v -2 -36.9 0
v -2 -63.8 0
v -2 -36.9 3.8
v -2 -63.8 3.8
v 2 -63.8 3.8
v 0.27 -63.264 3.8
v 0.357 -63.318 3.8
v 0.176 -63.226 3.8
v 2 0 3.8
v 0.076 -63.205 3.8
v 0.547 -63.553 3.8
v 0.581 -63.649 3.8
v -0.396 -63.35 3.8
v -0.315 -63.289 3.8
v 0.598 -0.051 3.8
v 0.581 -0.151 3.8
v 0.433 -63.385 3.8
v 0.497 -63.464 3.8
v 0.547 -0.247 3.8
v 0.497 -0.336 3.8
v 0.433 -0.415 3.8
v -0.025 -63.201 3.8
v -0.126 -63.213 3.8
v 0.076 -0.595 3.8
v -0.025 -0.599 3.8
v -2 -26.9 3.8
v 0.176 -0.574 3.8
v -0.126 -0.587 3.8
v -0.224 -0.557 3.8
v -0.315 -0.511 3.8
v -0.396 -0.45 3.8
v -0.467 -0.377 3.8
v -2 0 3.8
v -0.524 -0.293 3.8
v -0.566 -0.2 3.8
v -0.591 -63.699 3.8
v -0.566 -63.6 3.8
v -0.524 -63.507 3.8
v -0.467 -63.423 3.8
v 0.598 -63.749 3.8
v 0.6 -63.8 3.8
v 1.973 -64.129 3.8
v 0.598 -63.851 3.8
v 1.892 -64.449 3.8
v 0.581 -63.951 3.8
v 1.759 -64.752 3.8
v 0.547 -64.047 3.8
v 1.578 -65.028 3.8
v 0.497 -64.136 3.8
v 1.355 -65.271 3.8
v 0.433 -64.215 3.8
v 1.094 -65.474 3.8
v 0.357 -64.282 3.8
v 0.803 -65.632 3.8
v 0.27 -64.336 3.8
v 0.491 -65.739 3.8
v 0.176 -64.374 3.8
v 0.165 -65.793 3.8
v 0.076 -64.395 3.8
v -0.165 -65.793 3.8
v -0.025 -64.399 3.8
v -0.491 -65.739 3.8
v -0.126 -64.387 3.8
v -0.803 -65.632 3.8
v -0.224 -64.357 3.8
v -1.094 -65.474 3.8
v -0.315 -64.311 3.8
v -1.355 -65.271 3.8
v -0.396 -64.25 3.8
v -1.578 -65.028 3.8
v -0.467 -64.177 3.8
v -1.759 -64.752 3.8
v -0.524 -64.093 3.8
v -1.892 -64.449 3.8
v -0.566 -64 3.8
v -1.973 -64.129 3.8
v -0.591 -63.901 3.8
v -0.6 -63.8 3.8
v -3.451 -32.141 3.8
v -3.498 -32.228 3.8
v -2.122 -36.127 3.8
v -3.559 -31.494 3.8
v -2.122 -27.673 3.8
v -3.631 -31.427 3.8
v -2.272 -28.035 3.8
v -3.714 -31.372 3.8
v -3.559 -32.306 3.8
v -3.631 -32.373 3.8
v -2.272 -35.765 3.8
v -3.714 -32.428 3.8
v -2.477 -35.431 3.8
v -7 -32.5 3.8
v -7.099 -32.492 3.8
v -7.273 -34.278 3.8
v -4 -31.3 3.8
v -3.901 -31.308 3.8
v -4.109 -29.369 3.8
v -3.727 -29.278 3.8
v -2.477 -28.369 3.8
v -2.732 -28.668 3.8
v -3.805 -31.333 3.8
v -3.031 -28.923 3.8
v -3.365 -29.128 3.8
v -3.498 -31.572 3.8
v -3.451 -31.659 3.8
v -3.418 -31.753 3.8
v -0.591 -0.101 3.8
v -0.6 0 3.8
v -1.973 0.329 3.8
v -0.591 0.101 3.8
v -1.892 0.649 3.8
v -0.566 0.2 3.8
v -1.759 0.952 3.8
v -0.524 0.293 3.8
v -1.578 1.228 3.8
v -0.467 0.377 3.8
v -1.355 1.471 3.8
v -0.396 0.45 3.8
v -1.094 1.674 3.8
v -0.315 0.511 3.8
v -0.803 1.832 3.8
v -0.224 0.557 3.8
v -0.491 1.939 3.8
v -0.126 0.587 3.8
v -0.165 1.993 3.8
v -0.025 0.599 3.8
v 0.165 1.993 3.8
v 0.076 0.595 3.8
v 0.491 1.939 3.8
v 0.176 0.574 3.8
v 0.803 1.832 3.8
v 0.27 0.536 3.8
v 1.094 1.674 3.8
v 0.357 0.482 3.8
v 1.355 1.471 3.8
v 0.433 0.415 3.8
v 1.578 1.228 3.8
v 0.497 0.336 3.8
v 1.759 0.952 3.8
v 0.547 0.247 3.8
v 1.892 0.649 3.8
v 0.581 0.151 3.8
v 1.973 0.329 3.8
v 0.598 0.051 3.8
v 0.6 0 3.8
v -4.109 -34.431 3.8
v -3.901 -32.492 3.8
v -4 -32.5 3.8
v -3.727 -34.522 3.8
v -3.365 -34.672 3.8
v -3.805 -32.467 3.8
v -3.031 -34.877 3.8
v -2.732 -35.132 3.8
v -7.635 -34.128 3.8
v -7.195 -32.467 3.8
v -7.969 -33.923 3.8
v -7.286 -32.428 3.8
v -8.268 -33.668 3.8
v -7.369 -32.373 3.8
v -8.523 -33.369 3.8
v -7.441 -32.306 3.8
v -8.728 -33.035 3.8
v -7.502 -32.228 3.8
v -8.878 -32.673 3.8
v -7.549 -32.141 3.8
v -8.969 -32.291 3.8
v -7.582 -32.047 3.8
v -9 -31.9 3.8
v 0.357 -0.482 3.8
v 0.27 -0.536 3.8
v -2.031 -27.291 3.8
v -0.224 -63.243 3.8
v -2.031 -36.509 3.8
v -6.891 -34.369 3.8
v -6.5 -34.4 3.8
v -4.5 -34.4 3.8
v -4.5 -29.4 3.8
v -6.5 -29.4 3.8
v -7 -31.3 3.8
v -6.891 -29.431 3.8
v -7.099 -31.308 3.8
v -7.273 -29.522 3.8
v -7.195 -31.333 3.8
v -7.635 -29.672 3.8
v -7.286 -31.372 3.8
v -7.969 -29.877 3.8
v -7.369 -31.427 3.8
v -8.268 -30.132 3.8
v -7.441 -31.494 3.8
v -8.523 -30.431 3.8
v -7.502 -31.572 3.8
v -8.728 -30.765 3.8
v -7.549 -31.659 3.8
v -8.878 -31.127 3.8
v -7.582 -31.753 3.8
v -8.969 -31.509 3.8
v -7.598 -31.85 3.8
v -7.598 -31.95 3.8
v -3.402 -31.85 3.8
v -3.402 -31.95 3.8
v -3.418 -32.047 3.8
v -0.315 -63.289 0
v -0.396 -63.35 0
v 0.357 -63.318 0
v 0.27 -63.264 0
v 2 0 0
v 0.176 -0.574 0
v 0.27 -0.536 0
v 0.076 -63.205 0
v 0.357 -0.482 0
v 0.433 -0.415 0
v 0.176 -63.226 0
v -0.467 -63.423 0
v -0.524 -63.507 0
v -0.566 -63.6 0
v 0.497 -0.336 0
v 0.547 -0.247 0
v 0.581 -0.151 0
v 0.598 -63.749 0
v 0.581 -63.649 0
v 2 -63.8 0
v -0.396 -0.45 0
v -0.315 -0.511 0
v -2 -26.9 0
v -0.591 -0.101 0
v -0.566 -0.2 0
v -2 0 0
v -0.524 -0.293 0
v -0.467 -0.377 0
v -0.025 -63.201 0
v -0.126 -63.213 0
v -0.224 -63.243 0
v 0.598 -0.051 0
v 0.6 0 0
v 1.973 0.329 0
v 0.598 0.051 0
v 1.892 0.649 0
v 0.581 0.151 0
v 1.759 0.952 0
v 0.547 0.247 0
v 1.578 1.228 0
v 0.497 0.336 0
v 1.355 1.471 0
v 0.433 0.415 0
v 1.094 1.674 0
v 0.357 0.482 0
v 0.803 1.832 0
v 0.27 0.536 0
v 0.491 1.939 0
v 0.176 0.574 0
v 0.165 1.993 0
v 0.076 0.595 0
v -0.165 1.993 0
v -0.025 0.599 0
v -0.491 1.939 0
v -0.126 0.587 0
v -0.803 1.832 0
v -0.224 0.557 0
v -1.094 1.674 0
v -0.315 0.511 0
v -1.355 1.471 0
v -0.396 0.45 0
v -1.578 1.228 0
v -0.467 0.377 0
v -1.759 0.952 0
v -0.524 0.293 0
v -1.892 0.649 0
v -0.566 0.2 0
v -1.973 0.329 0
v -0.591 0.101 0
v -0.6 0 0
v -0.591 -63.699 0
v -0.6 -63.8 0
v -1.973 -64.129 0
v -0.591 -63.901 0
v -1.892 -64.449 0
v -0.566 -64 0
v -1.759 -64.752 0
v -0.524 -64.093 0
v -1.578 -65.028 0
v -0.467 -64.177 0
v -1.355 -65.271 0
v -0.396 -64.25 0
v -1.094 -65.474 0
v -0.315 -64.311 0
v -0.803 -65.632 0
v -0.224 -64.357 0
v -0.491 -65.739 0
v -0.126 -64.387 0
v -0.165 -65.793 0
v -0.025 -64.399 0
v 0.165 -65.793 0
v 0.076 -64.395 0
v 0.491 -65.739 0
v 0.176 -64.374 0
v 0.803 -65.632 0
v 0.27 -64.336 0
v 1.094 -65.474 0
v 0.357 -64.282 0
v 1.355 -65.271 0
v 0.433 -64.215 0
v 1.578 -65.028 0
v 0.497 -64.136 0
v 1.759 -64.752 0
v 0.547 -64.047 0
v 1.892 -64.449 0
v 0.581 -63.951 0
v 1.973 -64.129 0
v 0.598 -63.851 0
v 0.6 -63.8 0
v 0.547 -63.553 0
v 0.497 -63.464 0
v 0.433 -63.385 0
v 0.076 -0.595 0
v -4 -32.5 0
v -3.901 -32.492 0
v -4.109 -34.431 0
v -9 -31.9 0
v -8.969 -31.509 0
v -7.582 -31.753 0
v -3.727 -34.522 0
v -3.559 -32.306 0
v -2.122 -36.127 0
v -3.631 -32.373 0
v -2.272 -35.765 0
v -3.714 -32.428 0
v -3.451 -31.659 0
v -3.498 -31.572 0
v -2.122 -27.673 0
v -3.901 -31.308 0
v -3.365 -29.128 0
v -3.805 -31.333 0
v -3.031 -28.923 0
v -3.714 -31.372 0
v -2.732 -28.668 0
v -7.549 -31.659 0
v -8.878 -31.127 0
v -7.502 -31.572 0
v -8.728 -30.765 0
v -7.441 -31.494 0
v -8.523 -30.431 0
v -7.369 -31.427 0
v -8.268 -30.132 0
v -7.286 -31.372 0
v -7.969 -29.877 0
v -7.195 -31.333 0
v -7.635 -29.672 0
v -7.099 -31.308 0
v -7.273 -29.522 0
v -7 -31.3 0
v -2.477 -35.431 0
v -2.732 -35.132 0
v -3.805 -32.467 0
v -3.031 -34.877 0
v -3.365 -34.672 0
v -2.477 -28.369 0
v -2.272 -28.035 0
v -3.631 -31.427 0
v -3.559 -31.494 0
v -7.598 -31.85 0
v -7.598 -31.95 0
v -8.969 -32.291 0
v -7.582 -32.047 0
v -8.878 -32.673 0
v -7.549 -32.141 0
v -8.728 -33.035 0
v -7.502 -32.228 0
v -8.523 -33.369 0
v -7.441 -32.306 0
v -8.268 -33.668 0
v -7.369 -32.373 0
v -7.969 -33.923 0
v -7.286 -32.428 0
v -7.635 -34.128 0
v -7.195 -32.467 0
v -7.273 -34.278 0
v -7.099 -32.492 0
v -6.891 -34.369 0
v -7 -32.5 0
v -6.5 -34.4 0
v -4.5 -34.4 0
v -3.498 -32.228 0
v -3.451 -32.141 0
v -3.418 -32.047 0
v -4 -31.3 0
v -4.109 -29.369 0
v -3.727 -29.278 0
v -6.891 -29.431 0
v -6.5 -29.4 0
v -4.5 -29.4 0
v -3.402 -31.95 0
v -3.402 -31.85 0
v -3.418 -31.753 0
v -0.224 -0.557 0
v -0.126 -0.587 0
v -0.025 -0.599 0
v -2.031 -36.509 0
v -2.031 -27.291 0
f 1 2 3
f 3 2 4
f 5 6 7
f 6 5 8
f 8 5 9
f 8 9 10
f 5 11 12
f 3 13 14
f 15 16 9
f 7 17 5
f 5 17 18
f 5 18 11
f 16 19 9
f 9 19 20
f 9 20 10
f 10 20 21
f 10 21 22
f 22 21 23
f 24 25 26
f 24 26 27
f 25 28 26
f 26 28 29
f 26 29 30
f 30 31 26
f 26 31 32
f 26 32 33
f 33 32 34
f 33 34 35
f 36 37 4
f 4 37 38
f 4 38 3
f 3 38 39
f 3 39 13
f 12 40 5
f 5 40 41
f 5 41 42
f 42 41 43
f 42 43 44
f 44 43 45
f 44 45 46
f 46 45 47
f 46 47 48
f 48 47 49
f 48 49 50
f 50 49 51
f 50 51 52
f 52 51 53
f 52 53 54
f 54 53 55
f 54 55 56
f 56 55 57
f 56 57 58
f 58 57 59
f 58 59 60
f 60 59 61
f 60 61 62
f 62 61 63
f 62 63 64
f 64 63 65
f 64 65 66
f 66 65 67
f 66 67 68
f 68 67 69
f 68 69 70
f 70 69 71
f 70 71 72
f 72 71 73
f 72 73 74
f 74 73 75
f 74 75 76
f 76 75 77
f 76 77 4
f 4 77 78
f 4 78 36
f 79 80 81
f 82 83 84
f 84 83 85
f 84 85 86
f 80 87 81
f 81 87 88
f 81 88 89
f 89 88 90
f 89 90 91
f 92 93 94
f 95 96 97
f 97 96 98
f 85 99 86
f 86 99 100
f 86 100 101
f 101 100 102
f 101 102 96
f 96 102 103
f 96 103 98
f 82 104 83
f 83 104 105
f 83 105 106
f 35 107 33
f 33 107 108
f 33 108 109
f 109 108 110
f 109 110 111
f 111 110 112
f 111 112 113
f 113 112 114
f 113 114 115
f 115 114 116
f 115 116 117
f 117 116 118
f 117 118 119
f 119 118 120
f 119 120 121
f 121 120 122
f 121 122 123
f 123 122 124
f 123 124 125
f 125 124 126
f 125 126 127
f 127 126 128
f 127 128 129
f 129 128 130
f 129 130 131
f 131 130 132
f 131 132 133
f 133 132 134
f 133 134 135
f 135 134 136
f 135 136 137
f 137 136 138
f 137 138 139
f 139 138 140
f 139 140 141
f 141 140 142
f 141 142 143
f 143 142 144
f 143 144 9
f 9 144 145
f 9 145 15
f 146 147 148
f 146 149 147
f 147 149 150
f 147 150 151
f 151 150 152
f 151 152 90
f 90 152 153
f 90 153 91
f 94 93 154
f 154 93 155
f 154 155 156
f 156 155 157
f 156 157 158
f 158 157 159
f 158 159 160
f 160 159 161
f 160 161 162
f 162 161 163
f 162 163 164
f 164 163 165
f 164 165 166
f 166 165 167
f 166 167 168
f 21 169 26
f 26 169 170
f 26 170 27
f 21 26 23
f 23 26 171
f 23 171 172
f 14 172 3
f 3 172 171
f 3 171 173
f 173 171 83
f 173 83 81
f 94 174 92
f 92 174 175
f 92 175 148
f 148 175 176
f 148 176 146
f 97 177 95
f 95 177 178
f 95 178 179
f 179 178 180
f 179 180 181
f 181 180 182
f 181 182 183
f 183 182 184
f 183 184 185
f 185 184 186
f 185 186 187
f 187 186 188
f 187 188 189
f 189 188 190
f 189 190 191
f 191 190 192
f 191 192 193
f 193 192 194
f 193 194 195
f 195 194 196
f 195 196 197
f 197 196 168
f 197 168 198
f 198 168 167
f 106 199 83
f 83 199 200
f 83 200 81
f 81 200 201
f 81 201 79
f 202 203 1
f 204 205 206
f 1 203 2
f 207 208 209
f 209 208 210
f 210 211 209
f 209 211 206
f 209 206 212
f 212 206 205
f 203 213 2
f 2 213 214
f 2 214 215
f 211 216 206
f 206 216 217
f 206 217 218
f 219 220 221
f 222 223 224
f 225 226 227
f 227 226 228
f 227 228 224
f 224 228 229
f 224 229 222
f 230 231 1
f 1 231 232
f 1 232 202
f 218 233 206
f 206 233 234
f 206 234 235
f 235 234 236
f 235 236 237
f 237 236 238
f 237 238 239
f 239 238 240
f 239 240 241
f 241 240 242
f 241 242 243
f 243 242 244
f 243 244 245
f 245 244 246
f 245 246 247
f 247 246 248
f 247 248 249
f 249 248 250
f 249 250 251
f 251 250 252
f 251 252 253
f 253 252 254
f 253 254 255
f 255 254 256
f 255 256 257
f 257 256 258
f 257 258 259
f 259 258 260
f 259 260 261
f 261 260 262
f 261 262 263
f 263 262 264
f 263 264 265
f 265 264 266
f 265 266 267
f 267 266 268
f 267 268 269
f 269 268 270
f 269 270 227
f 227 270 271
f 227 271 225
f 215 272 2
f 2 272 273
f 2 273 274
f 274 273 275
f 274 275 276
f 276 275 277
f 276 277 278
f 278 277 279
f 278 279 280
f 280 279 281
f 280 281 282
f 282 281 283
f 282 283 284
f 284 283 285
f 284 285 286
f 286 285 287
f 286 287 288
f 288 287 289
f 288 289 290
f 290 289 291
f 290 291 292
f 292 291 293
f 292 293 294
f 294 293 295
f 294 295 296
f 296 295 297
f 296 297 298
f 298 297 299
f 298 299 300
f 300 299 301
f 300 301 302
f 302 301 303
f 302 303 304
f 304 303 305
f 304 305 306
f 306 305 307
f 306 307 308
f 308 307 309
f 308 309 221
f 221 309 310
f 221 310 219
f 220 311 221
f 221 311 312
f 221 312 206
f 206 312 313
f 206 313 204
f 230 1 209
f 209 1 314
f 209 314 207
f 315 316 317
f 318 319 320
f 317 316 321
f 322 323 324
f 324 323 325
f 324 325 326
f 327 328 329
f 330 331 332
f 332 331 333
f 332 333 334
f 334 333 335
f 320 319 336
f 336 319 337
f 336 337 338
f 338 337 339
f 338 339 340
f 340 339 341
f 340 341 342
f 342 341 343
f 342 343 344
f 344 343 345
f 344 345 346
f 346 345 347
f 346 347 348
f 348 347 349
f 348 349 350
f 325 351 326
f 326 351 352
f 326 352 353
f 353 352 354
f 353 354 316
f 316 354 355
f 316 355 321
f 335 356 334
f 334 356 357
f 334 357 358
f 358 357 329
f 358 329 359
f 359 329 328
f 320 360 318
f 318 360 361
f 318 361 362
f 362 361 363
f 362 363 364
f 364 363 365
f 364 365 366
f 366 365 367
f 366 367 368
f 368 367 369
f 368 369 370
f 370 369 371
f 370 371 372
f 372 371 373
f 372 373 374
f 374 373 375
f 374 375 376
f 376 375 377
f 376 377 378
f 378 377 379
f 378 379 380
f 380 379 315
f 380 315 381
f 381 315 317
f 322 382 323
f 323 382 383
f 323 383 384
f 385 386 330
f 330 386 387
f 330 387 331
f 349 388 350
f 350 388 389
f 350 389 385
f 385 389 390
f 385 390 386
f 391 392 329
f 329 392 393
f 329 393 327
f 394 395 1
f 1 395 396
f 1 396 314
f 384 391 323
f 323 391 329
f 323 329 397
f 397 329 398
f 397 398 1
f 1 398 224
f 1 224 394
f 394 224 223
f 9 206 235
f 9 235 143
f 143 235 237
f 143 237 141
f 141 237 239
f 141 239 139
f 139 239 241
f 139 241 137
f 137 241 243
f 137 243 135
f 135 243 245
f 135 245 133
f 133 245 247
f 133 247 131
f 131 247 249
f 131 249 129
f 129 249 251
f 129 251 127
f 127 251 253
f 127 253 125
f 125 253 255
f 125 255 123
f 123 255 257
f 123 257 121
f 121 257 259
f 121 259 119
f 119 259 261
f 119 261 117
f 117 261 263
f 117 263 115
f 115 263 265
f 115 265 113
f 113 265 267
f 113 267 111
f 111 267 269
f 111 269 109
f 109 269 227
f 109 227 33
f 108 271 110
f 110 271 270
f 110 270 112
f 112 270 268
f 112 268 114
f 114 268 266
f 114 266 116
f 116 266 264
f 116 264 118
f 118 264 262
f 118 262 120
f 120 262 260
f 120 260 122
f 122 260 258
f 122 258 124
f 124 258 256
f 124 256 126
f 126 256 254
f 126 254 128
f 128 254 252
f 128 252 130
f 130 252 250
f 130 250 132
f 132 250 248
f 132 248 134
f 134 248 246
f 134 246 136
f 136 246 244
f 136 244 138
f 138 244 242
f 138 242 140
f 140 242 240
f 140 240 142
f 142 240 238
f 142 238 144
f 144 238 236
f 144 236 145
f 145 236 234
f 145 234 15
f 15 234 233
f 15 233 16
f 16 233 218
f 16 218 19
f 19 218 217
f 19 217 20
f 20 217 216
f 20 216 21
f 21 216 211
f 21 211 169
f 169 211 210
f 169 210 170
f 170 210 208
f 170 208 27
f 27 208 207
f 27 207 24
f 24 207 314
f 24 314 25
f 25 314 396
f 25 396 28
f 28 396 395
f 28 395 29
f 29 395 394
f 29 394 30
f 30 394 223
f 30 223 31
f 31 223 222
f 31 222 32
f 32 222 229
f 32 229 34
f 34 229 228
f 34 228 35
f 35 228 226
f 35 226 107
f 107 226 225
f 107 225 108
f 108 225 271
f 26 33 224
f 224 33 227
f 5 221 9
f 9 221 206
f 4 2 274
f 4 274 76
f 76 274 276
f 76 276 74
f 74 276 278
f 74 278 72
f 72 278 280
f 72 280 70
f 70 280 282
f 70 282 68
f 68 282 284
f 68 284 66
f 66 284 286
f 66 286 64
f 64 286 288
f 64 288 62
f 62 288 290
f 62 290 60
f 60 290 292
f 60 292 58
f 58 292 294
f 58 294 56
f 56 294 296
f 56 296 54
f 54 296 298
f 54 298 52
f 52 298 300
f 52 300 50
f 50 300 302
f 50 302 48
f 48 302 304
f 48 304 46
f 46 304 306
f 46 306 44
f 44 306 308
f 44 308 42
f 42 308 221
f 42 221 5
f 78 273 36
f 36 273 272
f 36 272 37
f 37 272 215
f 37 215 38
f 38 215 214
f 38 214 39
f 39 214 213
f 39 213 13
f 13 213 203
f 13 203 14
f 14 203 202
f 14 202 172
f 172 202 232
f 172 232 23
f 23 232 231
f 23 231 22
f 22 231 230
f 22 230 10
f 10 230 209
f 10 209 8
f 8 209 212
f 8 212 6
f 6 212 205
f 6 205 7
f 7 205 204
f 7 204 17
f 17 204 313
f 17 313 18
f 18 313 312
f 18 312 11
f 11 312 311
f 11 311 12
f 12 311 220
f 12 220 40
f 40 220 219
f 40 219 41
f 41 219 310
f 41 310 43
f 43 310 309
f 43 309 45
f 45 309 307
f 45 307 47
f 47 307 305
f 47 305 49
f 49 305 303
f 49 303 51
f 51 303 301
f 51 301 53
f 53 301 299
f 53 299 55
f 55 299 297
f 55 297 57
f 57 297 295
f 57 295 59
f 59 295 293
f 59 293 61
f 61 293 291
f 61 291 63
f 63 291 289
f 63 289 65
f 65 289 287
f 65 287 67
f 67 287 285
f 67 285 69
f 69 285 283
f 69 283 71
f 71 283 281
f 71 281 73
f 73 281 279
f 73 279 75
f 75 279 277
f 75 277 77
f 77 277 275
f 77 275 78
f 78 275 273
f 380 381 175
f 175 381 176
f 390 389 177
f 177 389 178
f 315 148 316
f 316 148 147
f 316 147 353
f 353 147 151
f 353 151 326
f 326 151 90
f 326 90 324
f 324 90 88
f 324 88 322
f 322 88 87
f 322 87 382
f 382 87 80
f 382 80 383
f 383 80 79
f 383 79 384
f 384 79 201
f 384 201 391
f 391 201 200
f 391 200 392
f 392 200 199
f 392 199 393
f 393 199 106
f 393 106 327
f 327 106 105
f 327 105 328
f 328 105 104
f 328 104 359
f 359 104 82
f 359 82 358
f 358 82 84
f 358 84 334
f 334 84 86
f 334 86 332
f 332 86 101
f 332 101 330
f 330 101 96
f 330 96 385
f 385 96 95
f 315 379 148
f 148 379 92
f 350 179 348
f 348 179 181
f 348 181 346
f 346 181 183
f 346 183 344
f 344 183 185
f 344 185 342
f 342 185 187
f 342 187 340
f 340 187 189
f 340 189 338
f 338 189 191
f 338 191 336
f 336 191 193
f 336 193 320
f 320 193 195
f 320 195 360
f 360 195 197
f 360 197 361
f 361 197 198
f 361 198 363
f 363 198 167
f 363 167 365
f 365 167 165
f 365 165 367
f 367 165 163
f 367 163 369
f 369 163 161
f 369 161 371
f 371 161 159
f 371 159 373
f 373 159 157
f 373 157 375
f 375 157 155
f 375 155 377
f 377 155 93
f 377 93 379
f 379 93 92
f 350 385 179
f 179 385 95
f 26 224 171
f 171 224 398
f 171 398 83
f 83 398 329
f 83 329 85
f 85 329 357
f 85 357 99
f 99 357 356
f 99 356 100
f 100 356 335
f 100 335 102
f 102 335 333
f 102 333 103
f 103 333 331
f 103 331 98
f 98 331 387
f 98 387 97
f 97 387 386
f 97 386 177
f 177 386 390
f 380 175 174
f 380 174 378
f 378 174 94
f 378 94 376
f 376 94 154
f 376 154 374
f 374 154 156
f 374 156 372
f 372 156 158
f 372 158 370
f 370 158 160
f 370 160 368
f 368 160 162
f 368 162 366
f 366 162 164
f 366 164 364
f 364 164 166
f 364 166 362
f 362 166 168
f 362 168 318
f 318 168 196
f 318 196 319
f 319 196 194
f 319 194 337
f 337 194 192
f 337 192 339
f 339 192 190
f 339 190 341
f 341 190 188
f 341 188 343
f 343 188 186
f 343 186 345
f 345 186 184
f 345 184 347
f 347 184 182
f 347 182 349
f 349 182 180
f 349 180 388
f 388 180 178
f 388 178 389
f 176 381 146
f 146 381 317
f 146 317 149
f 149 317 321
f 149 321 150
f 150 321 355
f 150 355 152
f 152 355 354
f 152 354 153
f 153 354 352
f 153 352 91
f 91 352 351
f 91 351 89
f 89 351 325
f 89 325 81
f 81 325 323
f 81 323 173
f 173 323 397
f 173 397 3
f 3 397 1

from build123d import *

# Parameters (mm, degrees)
SKETCH_1_R          = 2
SKETCH_1_R_2        = 0.6
EXTRUDE_1_DEPTH     = 3.8
SKETCH_2_W          = 4
SKETCH_2_H          = 3.8
EXTRUDE_2_DEPTH     = 10
SKETCH_1_4_R        = 0.6
CUT_EXTRUDE_1_DEPTH = 11.883014288
SKETCH_3_W          = 4
SKETCH_3_H          = 21.9
EXTRUDE_3_DEPTH     = 3.8
SKETCH_5_W          = 7
SKETCH_5_H          = 5
EXTRUDE_4_DEPTH     = 3.8
CUT_EXTRUDE_3_DEPTH = 67.521274792
FILLET_1_R          = 2.5


with BuildPart() as part:
    # 草图1 → 凸台-拉伸1 (new body)
    with BuildSketch(Plane.XY):
        with Locations(Location((0, 0, 0), (0, 0, 180))):
            Circle(SKETCH_1_R)
        Circle(SKETCH_1_R_2, mode=Mode.SUBTRACT)
    extrude(amount=EXTRUDE_1_DEPTH)

    # 草图2 → 凸台-拉伸2 (add)
    with BuildSketch(Plane(origin=(0, 0, 0), x_dir=(1, 0, 0), z_dir=(0, 1, 0))):
        with Locations((0, -1.9)):
            Rectangle(SKETCH_2_W, SKETCH_2_H)
    extrude(amount=-EXTRUDE_2_DEPTH)

    # 草图1<4> → 切除-拉伸1 (cut, through all)
    with BuildSketch(Plane.XY):
        Circle(SKETCH_1_4_R)
    extrude(amount=CUT_EXTRUDE_1_DEPTH, mode=Mode.SUBTRACT)

    # 草图3 → 凸台-拉伸3 (add)
    with BuildSketch(Plane.XY.offset(3.8)):
        with Locations((0, -20.95)):
            Rectangle(SKETCH_3_W, SKETCH_3_H)
    extrude(amount=-EXTRUDE_3_DEPTH)

    # 镜向1: part across plane


with BuildPart() as part_1:
    add(part.part)
    add(part.part.mirror(Plane(origin=(2, -31.9, -22.262299971), x_dir=(0, 0, 1), z_dir=(0, -1, 0))))

    # 草图5 → 凸台-拉伸4 (add)
    with BuildSketch(Plane.XY.offset(3.8)):
        with Locations((-5.5, -31.9)):
            Rectangle(SKETCH_5_W, SKETCH_5_H)
    extrude(amount=-EXTRUDE_4_DEPTH)

    # 草图6 → 切除-拉伸3 (cut, through all)
    with BuildSketch(Plane.XY.offset(3.8)):
        with BuildLine():
            Line((-4, -32.5), (-7, -32.5))
            ThreePointArc((-7, -32.5), (-7.6, -31.9), (-7, -31.3))
            Line((-7, -31.3), (-4, -31.3))
            ThreePointArc((-4, -31.3), (-3.4, -31.9), (-4, -32.5))
        make_face()
    extrude(amount=-CUT_EXTRUDE_3_DEPTH, mode=Mode.SUBTRACT)

    # 圆角1
    fillet_1_edges = [part_1.edges().sort_by_distance(p)[0] for p in [
        (-2, -29.4, 1.9),
        (-2, -34.4, 1.9),
    ]]
    fillet(fillet_1_edges, radius=FILLET_1_R)
    fillet_1_2_edges = [part_1.edges().sort_by_distance(p)[0] for p in [
        (-9, -34.4, 1.9),
        (-9, -29.4, 1.9),
    ]]
    fillet(fillet_1_2_edges, radius=FILLET_1_R - 0.0001)  # a hair under: the kernel refuses the full size


solid = part_1.part
